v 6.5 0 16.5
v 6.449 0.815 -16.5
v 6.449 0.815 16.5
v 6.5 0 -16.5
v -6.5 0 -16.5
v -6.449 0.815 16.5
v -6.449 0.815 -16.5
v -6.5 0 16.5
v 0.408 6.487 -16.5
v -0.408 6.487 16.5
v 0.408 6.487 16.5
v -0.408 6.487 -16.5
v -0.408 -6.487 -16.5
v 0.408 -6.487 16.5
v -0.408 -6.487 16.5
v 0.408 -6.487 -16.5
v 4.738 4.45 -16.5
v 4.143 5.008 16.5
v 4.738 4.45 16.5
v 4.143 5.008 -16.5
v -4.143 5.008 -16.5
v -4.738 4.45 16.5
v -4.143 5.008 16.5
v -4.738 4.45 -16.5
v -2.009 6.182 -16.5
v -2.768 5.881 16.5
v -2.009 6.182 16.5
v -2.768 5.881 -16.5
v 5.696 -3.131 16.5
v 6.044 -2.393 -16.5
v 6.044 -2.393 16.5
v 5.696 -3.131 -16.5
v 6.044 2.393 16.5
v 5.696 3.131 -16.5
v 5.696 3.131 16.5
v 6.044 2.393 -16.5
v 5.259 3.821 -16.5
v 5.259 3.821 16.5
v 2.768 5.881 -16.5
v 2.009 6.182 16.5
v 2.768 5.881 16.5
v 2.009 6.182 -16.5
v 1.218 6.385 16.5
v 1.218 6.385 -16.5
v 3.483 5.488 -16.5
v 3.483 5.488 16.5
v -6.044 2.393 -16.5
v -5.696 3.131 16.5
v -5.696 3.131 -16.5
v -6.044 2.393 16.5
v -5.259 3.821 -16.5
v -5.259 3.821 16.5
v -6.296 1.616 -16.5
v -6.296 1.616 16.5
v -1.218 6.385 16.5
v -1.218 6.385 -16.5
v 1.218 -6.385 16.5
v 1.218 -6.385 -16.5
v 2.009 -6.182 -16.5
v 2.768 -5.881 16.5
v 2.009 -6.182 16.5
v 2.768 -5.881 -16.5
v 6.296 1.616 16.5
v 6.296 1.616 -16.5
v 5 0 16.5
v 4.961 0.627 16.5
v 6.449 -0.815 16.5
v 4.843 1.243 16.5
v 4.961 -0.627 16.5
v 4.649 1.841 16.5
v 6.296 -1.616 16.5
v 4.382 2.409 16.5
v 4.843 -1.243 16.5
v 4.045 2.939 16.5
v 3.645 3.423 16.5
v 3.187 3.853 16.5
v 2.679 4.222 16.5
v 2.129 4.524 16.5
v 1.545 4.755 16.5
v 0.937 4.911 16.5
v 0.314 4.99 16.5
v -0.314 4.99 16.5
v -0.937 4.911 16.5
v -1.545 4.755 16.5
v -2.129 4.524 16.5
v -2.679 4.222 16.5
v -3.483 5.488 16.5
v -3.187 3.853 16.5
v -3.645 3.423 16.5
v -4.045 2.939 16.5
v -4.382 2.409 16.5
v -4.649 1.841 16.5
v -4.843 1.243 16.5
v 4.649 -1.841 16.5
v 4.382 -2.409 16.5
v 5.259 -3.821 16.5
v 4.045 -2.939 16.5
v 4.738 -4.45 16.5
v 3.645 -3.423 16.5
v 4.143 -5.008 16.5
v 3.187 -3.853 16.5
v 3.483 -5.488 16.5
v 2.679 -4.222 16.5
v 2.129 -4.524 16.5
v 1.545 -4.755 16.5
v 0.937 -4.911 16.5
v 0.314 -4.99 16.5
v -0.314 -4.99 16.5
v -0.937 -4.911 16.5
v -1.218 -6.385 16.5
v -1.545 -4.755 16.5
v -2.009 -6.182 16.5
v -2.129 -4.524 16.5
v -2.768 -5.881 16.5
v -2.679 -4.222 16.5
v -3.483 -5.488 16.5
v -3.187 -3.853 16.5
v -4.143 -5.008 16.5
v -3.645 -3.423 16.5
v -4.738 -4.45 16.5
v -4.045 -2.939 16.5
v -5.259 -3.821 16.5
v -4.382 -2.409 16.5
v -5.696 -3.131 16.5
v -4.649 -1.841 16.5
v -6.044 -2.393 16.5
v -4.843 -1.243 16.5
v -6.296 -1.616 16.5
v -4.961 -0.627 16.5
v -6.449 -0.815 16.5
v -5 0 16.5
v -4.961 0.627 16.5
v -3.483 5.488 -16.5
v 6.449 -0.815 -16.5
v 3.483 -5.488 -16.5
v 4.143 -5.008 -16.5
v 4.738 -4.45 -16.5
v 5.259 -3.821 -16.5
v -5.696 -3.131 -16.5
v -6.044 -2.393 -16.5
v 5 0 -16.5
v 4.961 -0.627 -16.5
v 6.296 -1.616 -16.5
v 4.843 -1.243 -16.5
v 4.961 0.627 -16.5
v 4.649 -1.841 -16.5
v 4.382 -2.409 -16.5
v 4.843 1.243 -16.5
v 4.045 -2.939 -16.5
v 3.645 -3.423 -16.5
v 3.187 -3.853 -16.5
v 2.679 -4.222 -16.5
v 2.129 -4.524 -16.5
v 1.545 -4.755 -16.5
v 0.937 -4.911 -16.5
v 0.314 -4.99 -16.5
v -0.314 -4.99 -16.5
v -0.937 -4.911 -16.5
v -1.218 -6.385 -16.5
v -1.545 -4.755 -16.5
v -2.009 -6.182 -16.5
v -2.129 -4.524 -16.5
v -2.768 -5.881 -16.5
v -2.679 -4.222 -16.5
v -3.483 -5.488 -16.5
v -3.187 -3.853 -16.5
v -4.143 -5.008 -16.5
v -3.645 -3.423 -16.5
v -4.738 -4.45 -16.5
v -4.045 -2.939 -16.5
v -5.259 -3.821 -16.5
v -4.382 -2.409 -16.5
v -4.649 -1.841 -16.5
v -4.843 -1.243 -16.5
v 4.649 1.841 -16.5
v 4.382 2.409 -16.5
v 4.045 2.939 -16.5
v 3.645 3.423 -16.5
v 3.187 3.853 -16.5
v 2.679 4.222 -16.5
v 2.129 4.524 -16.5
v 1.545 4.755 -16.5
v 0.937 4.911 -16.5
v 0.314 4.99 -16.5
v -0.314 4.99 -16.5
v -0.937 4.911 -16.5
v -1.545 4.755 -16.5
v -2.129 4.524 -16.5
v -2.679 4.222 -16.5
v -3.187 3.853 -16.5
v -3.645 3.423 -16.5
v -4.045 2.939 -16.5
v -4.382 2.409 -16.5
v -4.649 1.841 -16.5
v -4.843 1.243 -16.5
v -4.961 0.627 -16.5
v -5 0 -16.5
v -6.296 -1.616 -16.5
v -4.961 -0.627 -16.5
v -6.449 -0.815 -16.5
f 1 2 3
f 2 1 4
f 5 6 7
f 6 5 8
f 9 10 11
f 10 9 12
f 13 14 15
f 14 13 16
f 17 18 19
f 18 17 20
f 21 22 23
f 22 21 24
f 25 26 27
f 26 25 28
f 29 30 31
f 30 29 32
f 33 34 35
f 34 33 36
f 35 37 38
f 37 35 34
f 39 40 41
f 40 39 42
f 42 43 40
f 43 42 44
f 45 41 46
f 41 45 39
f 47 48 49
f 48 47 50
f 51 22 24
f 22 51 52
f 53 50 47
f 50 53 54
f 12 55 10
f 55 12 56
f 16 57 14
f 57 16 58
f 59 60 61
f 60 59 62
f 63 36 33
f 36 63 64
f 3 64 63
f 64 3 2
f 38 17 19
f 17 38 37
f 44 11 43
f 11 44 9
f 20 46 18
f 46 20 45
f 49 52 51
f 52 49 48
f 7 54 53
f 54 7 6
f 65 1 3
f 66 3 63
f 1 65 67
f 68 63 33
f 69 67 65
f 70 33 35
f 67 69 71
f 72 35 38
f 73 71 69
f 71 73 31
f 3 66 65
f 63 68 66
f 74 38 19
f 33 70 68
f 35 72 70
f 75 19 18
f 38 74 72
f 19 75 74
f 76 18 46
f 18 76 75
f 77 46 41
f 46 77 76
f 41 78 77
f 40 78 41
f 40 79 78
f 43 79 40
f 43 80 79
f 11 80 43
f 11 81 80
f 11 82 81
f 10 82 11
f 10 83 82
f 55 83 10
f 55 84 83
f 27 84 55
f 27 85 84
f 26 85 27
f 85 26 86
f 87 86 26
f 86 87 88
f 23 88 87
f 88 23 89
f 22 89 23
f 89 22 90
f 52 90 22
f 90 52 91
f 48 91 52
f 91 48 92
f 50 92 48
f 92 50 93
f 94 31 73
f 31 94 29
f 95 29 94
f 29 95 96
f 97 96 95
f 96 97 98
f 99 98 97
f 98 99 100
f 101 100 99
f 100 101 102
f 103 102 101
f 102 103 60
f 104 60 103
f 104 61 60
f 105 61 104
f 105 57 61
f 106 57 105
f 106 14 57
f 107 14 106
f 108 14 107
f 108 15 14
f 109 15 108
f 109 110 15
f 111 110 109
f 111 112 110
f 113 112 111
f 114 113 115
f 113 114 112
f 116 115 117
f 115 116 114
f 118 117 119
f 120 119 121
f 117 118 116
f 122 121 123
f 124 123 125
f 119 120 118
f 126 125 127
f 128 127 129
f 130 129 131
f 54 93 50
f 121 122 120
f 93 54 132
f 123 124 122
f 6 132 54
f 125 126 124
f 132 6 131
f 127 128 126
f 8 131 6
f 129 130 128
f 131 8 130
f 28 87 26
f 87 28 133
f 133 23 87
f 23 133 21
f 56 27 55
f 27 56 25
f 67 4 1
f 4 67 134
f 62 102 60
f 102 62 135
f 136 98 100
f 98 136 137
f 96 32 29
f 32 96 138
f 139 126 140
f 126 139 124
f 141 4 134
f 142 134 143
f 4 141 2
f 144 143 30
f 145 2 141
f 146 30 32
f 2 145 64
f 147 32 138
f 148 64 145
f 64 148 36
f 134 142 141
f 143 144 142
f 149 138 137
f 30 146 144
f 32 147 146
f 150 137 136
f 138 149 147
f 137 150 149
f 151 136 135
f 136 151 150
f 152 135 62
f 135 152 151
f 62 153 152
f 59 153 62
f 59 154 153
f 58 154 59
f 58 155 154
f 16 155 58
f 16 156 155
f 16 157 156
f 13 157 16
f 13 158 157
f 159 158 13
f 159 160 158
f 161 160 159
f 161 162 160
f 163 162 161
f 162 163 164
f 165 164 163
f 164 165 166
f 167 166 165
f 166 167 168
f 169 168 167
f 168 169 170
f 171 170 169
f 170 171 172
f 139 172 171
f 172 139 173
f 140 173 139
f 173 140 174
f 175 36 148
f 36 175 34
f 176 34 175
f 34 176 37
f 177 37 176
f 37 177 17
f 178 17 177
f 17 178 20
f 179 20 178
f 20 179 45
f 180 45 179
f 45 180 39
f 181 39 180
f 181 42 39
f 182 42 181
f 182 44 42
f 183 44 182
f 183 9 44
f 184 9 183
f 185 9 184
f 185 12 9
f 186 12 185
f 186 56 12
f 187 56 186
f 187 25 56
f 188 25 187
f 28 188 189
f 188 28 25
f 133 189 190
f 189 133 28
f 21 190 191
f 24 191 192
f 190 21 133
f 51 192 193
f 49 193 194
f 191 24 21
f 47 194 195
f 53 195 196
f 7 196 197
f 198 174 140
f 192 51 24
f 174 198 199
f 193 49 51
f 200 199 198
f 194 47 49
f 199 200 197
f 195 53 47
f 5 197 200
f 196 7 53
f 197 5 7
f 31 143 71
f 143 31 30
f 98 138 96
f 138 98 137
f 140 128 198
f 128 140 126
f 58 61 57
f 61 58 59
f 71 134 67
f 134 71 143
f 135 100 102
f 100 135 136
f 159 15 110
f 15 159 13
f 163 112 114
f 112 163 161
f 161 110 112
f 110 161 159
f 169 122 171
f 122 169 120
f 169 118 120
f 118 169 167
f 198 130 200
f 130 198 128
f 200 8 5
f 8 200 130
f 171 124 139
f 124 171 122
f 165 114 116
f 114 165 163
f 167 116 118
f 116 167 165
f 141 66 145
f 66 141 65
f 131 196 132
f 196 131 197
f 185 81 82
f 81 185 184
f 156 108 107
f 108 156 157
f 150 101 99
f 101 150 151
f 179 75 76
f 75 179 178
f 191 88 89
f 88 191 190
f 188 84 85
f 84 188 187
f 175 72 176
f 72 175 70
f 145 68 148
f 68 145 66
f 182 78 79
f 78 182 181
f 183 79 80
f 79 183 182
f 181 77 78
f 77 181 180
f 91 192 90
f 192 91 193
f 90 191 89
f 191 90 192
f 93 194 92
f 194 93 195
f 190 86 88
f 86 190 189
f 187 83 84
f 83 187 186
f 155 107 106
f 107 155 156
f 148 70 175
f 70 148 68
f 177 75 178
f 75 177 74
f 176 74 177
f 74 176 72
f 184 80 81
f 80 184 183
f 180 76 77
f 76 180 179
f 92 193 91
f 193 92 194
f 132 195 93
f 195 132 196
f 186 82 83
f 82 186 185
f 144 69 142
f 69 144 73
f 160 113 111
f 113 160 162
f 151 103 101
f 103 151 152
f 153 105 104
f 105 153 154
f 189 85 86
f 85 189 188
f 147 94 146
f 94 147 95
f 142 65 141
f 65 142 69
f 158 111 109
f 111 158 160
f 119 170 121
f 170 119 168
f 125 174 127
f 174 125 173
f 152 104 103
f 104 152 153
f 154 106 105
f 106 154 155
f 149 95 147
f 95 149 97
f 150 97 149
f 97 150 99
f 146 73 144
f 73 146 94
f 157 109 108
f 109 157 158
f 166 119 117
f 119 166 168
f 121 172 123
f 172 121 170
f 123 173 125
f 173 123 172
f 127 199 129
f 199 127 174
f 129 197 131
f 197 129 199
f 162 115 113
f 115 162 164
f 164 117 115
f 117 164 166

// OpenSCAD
$fn = 50;


difference() {
	union() {
		translate(v = [0, 0, -16.5000000000]) {
			cylinder(h = 33, r = 6.5000000000);
		}
	}
	union() {
		translate(v = [0, 0, -100.0000000000]) {
			cylinder(h = 200, r = 5);
		}
	}
}
